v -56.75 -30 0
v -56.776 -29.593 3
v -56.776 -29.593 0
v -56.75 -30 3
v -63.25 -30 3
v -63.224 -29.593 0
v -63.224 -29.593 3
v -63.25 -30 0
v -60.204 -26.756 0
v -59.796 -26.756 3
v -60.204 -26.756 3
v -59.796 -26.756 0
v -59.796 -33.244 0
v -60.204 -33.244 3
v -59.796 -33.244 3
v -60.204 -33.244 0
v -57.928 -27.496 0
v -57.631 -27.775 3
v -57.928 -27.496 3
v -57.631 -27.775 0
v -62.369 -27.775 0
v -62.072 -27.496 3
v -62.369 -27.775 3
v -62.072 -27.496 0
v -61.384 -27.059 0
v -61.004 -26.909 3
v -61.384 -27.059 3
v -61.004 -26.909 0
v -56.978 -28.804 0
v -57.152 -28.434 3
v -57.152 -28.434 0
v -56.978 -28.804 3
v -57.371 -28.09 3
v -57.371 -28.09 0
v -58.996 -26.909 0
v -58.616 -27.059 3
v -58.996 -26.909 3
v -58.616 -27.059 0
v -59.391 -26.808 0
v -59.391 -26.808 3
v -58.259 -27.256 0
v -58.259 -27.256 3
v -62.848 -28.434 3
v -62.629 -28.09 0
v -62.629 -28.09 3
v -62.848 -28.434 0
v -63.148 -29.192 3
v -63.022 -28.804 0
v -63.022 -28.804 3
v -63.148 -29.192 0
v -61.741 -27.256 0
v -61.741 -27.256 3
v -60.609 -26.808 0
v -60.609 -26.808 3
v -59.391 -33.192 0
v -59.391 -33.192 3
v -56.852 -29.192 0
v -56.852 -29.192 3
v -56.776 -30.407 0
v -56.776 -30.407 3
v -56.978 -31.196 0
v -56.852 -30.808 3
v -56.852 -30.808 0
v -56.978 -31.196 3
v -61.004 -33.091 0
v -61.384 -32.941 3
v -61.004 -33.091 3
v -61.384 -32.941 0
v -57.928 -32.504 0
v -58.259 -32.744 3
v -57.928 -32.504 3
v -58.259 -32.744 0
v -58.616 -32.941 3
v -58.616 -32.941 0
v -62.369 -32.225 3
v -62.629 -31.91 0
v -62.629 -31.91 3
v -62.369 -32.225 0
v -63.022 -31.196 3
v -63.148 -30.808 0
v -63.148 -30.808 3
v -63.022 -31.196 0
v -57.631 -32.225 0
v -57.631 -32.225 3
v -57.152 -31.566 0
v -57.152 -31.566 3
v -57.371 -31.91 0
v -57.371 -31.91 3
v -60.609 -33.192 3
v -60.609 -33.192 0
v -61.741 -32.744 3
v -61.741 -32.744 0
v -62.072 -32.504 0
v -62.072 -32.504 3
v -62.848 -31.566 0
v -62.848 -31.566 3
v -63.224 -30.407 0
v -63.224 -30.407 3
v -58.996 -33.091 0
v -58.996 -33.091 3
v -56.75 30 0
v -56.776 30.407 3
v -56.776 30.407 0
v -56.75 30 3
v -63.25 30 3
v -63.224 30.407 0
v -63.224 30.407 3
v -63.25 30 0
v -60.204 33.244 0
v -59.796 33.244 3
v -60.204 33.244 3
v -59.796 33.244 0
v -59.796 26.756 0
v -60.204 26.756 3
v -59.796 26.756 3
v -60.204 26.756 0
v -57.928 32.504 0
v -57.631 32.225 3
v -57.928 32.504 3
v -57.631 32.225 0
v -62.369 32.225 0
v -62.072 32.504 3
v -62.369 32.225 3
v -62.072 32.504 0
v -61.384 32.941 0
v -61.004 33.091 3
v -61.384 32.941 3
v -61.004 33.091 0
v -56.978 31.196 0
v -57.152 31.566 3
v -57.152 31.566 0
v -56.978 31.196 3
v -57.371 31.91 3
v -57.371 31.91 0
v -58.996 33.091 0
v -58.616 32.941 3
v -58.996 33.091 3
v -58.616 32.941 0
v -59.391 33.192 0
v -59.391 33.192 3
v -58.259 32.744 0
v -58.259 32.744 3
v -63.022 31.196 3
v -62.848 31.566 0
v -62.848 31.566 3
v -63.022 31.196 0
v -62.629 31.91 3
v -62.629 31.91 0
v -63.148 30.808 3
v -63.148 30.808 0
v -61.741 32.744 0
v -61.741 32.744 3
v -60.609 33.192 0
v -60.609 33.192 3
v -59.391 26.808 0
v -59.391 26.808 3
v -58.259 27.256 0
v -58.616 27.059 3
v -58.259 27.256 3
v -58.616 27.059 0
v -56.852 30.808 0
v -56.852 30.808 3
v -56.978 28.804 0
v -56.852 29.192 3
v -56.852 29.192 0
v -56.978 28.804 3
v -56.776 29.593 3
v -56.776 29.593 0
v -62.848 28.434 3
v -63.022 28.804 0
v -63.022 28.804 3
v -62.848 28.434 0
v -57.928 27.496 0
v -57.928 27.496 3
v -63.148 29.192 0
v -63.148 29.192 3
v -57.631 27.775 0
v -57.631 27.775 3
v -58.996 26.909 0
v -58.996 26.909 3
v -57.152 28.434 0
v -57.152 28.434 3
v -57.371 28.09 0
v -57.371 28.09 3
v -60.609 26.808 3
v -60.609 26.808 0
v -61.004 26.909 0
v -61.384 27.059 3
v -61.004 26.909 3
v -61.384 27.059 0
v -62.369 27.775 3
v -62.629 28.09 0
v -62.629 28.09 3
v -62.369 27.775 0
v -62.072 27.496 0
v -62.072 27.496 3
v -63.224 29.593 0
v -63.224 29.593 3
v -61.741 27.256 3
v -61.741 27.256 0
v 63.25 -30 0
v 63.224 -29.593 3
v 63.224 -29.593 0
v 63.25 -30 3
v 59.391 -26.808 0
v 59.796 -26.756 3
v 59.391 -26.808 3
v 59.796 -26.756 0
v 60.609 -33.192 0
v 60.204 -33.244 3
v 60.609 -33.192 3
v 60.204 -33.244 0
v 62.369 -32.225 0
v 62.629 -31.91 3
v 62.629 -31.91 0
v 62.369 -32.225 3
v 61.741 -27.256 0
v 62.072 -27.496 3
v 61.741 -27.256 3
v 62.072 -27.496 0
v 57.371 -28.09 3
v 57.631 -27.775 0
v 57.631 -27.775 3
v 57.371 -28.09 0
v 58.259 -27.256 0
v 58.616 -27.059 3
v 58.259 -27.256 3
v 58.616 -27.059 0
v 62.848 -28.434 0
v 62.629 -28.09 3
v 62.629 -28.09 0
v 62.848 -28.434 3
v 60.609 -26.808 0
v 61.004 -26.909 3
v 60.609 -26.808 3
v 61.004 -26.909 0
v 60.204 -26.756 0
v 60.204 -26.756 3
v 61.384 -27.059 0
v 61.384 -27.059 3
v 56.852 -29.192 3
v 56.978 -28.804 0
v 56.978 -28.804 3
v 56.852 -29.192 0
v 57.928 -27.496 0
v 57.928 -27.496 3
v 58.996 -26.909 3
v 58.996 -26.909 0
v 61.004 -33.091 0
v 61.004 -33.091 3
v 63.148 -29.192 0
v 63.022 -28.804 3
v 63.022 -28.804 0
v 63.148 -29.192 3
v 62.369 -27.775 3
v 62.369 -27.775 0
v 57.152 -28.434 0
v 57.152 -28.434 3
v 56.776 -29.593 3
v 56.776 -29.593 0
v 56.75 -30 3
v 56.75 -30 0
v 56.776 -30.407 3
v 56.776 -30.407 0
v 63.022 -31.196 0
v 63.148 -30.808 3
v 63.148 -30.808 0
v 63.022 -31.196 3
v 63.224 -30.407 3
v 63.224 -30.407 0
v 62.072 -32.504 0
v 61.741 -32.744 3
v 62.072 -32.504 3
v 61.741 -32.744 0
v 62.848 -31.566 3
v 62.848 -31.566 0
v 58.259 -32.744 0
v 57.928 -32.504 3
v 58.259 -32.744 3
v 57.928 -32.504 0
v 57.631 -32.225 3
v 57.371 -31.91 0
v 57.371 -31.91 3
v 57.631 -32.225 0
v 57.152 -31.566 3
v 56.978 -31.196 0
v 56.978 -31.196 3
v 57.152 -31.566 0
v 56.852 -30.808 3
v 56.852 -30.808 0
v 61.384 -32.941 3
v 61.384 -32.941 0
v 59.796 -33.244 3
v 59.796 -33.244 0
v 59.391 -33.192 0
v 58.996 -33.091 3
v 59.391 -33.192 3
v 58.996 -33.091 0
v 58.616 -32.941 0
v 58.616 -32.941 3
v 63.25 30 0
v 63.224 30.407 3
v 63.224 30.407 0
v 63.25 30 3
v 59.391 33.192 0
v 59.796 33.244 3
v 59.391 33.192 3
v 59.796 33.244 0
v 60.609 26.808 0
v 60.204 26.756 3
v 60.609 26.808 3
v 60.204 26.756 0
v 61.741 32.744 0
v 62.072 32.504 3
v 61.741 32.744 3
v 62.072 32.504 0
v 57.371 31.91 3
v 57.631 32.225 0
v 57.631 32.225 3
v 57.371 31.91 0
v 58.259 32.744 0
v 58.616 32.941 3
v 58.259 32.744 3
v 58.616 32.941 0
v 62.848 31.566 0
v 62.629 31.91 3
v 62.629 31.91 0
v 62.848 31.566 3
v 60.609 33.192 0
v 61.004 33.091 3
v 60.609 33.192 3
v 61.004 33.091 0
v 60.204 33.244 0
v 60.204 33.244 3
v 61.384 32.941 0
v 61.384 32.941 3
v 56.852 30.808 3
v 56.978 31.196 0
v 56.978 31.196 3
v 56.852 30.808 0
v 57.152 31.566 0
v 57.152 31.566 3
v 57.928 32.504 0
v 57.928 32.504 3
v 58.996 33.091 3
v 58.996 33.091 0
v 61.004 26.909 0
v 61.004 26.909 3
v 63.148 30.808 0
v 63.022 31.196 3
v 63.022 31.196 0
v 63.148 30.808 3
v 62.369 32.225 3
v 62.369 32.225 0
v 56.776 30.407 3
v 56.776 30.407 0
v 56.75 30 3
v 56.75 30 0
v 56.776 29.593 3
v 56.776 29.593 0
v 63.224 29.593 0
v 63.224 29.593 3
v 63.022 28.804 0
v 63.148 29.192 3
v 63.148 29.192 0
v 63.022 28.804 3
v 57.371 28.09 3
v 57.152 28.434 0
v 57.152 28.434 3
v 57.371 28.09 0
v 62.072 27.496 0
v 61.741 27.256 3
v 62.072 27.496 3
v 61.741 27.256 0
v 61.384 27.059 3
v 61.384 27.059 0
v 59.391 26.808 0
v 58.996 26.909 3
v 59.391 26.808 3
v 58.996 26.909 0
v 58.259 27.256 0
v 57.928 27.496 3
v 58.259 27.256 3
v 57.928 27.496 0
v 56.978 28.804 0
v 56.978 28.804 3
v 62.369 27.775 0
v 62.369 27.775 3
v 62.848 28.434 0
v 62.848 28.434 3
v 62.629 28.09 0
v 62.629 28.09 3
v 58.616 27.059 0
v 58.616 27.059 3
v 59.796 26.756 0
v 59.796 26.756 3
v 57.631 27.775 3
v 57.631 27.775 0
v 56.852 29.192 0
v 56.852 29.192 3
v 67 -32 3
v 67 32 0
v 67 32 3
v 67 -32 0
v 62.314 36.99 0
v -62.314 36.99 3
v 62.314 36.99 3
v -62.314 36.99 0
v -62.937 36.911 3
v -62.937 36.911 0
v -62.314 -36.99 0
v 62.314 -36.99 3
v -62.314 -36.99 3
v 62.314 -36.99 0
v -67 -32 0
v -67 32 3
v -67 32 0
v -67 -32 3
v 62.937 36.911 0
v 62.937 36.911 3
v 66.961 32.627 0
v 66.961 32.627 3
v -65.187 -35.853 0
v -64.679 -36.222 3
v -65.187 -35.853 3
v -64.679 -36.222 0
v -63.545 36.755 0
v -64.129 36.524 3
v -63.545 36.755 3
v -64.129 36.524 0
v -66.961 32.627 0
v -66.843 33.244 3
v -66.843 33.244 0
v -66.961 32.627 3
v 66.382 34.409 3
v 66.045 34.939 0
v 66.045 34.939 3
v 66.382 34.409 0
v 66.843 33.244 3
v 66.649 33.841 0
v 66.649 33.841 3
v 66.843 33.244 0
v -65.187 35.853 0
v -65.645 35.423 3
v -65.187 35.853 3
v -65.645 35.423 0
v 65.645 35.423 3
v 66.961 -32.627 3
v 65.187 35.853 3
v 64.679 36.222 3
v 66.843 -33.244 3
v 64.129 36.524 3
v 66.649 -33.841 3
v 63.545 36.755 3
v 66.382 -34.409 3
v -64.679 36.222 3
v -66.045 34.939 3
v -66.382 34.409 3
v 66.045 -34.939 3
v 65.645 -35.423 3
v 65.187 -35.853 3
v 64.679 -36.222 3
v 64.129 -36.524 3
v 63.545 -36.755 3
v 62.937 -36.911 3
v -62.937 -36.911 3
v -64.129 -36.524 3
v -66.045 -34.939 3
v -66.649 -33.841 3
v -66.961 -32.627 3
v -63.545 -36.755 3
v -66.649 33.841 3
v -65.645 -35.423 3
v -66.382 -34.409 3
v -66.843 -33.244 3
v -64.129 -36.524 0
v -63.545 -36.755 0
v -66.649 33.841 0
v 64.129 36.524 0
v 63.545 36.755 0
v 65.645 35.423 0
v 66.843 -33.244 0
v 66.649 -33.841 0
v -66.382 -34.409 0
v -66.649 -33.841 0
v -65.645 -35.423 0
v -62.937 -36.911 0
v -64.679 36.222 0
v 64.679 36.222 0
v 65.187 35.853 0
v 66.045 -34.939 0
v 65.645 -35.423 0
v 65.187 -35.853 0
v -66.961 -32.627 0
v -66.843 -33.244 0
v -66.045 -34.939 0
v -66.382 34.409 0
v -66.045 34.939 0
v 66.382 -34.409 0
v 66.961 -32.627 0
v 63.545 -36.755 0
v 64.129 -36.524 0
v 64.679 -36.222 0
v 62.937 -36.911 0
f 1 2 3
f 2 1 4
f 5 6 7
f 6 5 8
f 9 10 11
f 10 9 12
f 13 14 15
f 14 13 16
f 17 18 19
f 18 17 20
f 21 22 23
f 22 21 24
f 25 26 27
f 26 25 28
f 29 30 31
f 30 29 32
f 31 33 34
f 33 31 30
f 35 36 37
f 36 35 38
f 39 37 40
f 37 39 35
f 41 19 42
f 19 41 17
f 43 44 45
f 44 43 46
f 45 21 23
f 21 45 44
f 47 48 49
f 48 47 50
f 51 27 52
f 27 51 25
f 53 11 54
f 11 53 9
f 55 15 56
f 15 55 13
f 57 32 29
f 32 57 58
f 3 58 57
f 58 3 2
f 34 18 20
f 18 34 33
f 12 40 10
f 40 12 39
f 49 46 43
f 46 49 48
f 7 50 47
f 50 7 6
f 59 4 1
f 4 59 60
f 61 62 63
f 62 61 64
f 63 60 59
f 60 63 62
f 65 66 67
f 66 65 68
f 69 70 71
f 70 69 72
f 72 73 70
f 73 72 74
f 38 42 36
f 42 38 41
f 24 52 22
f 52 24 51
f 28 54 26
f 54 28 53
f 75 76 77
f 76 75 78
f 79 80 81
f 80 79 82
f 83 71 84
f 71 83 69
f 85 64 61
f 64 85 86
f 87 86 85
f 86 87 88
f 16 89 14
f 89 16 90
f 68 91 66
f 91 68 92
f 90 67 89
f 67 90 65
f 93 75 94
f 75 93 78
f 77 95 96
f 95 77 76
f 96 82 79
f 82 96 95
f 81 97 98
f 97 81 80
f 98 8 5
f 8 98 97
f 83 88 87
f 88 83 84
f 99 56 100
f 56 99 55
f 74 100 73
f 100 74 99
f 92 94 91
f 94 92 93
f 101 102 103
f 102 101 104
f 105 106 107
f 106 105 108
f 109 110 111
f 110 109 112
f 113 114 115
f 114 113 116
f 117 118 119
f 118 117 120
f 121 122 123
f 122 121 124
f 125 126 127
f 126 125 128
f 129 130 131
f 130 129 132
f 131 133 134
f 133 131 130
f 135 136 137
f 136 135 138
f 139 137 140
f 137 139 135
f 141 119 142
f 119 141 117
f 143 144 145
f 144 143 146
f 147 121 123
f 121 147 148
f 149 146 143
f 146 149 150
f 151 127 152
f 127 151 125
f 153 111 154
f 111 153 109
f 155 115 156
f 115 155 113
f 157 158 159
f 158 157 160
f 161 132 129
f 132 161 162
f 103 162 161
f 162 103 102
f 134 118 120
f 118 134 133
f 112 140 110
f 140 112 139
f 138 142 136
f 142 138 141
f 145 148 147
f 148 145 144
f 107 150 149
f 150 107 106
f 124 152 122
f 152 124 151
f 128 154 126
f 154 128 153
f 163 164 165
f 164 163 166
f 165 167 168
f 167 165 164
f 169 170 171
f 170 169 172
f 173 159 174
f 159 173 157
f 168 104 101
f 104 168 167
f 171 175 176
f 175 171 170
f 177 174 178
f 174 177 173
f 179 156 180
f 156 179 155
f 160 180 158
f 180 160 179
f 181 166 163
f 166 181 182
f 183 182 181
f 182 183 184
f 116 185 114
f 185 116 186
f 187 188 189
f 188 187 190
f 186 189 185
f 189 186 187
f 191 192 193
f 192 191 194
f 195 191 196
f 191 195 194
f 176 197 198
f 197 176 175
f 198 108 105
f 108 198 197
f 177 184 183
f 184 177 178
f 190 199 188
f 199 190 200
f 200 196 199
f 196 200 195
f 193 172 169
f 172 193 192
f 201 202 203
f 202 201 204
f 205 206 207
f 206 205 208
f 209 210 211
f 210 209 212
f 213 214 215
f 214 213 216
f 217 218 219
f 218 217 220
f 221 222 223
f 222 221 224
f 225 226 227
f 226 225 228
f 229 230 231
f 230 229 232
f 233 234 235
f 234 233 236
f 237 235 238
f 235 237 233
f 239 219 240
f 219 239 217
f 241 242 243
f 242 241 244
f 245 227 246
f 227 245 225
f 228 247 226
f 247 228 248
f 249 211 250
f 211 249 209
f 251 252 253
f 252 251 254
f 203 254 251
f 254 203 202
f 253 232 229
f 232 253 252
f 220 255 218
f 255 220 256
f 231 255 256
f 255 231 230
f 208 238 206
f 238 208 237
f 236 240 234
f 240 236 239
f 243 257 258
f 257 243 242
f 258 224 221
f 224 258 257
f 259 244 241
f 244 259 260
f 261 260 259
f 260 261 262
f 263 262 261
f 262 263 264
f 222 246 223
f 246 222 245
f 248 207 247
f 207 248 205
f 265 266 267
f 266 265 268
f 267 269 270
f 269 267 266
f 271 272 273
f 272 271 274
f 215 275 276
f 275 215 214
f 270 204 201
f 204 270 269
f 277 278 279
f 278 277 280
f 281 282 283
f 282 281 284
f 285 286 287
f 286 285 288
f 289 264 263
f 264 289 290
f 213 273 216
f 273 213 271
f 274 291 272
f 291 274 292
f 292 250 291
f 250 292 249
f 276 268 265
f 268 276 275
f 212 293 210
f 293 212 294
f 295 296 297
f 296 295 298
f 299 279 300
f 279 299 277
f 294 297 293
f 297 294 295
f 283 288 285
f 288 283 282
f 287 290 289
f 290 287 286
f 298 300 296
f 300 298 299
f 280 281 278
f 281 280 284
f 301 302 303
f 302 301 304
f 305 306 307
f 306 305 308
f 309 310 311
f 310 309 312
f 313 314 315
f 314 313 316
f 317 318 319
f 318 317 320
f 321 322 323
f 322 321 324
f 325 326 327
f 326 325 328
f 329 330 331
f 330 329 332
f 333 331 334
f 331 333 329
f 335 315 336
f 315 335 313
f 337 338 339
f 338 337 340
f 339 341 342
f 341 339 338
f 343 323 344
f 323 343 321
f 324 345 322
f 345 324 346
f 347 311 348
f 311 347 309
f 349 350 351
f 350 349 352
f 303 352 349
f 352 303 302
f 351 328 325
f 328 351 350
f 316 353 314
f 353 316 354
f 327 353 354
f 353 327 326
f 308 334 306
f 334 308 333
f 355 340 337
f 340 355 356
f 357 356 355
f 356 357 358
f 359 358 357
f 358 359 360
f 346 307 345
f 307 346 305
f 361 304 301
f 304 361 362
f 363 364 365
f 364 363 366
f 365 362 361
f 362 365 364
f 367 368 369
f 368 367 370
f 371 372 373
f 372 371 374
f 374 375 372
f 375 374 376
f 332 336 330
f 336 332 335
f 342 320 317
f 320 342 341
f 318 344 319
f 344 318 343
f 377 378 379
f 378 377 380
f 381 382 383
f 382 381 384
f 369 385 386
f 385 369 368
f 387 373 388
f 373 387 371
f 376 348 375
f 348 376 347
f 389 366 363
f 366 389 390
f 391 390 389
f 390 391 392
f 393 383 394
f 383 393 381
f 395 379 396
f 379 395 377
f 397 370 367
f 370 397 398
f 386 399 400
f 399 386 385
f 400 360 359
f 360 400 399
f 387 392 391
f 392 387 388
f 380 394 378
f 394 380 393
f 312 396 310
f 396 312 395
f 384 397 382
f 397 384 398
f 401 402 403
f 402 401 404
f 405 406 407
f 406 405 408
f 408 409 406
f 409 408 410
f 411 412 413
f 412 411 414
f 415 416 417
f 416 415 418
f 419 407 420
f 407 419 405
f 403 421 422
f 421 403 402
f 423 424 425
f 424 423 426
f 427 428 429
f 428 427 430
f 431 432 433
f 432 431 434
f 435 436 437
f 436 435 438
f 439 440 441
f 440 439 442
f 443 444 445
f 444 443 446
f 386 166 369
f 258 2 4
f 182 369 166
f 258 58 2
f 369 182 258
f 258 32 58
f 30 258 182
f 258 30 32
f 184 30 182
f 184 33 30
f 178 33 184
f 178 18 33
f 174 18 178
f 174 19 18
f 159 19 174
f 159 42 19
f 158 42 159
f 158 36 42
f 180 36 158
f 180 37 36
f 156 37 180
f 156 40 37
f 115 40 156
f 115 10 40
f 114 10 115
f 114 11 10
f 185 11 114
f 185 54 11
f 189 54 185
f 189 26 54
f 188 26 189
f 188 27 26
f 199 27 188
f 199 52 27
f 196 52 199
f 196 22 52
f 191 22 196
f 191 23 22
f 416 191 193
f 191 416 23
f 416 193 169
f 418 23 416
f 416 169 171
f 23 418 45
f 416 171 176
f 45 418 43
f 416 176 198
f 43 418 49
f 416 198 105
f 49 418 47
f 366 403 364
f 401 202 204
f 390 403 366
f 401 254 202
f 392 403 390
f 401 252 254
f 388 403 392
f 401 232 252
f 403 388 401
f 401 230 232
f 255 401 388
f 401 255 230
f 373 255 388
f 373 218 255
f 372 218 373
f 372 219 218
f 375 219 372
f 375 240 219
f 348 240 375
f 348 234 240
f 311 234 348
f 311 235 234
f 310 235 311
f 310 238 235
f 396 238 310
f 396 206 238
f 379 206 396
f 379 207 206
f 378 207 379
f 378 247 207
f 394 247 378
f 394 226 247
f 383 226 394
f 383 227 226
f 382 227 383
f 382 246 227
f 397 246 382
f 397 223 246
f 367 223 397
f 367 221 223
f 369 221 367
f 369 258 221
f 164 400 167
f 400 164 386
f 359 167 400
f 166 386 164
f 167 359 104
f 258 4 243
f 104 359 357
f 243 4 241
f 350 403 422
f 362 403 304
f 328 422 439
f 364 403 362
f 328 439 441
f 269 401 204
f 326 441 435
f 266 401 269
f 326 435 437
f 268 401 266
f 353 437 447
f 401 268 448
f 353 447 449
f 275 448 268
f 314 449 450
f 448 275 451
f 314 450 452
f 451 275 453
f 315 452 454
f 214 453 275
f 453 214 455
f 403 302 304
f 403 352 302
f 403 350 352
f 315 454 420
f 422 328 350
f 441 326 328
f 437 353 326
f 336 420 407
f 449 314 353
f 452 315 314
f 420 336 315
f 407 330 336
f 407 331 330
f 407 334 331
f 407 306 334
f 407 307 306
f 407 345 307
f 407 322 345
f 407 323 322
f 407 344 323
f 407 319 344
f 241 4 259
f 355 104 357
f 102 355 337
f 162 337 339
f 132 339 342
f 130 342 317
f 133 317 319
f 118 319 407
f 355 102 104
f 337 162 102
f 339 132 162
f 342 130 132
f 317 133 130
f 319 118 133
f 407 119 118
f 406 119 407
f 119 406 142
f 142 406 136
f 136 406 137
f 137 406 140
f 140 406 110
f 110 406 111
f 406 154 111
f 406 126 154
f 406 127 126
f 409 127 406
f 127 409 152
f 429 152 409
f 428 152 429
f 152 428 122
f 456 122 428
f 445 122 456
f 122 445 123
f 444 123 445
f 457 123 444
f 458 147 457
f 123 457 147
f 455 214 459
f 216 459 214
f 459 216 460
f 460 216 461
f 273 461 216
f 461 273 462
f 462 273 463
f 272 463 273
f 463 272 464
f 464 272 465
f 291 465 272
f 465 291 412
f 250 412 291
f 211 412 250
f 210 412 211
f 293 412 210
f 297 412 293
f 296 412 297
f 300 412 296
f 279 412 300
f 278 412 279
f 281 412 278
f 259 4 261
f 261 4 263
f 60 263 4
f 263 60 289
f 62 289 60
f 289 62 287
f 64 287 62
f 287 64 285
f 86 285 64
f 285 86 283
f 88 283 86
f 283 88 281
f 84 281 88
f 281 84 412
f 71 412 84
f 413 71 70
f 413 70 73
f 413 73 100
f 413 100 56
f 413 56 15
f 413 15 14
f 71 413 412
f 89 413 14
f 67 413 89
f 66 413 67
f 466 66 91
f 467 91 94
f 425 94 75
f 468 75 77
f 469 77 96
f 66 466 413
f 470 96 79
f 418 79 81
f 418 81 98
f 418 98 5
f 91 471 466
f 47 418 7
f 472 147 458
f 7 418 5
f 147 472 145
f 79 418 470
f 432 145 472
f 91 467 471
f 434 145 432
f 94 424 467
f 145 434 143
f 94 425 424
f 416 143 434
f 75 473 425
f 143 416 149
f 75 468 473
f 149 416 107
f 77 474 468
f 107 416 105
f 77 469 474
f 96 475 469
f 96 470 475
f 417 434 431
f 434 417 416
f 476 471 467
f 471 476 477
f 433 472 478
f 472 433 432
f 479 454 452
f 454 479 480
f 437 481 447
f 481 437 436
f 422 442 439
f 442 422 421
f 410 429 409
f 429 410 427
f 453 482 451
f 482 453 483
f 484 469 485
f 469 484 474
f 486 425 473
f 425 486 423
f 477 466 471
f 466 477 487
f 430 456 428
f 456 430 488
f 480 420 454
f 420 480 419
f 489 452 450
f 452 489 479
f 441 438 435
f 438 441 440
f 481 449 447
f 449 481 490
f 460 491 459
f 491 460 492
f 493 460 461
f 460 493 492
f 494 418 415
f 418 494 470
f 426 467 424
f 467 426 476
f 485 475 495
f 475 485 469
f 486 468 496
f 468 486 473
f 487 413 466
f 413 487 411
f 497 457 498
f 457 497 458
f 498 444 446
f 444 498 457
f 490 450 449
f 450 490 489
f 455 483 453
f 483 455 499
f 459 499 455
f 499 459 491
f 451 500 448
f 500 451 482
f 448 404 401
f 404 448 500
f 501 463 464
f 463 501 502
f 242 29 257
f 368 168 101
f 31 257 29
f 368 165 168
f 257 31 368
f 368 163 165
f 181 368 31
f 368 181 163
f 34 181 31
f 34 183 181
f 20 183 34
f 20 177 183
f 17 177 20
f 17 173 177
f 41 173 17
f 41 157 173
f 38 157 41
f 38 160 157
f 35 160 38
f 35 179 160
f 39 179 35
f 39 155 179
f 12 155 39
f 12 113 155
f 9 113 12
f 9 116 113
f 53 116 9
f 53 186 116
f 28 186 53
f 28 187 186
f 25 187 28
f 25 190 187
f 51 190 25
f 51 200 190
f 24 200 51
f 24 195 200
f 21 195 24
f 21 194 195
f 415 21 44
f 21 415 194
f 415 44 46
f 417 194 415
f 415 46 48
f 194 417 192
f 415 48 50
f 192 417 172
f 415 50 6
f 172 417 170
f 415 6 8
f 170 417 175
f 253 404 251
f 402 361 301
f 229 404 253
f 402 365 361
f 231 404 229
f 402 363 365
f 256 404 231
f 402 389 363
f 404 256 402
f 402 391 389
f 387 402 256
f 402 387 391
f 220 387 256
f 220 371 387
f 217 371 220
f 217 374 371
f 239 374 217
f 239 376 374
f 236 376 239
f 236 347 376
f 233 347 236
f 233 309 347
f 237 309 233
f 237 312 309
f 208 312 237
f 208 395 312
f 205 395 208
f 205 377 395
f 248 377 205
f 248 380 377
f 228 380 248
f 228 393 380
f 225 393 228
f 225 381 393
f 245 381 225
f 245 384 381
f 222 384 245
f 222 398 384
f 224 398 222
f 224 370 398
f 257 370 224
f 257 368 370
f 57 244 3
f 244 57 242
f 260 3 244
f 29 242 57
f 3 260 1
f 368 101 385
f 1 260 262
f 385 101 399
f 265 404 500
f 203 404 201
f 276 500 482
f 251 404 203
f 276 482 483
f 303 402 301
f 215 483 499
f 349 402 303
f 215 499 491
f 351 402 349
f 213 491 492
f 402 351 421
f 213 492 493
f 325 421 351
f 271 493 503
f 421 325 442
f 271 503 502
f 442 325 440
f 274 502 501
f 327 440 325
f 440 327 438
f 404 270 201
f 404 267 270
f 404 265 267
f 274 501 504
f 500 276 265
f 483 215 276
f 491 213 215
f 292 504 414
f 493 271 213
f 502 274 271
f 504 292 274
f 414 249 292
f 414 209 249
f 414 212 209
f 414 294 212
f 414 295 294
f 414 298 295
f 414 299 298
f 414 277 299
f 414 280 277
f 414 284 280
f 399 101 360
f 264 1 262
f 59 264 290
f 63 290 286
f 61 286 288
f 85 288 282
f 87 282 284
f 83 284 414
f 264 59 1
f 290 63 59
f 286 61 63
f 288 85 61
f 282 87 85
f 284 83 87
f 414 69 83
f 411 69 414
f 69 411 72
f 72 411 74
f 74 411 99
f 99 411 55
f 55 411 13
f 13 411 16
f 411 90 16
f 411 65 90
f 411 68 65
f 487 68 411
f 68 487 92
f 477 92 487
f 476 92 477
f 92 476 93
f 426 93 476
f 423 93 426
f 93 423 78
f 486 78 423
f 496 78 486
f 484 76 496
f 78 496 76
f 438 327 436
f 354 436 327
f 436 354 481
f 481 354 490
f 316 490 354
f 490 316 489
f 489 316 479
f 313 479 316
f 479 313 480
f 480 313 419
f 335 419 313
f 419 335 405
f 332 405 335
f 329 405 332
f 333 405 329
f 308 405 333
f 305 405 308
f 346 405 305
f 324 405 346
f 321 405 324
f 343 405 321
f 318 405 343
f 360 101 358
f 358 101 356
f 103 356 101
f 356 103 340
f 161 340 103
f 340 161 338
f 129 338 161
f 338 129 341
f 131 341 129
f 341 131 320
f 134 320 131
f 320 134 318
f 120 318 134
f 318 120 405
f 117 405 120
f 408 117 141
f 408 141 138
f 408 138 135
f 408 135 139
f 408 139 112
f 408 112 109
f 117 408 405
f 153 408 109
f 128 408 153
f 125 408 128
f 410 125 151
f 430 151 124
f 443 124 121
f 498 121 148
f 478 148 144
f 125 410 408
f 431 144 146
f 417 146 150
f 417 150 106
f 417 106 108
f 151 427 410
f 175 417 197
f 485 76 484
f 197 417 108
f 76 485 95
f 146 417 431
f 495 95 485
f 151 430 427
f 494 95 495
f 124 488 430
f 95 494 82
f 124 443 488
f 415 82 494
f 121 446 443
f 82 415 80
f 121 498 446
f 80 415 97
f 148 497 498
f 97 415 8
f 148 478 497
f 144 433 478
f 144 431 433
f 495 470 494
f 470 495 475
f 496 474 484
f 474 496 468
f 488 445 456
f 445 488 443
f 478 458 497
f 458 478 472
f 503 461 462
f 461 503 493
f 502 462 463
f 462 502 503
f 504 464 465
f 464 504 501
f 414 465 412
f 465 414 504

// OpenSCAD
$fn = 50;


difference() {
	union() {
		hull() {
			translate(v = [-62.0000000000, 32.0000000000, 0]) {
				cylinder(h = 3, r = 5);
			}
			translate(v = [62.0000000000, 32.0000000000, 0]) {
				cylinder(h = 3, r = 5);
			}
			translate(v = [-62.0000000000, -32.0000000000, 0]) {
				cylinder(h = 3, r = 5);
			}
			translate(v = [62.0000000000, -32.0000000000, 0]) {
				cylinder(h = 3, r = 5);
			}
		}
	}
	union() {
		translate(v = [-60.0000000000, -30.0000000000, -100.0000000000]) {
			cylinder(h = 200, r = 3.2500000000);
		}
		translate(v = [-60.0000000000, 30.0000000000, -100.0000000000]) {
			cylinder(h = 200, r = 3.2500000000);
		}
		translate(v = [60.0000000000, -30.0000000000, -100.0000000000]) {
			cylinder(h = 200, r = 3.2500000000);
		}
		translate(v = [60.0000000000, 30.0000000000, -100.0000000000]) {
			cylinder(h = 200, r = 3.2500000000);
		}
	}
}
